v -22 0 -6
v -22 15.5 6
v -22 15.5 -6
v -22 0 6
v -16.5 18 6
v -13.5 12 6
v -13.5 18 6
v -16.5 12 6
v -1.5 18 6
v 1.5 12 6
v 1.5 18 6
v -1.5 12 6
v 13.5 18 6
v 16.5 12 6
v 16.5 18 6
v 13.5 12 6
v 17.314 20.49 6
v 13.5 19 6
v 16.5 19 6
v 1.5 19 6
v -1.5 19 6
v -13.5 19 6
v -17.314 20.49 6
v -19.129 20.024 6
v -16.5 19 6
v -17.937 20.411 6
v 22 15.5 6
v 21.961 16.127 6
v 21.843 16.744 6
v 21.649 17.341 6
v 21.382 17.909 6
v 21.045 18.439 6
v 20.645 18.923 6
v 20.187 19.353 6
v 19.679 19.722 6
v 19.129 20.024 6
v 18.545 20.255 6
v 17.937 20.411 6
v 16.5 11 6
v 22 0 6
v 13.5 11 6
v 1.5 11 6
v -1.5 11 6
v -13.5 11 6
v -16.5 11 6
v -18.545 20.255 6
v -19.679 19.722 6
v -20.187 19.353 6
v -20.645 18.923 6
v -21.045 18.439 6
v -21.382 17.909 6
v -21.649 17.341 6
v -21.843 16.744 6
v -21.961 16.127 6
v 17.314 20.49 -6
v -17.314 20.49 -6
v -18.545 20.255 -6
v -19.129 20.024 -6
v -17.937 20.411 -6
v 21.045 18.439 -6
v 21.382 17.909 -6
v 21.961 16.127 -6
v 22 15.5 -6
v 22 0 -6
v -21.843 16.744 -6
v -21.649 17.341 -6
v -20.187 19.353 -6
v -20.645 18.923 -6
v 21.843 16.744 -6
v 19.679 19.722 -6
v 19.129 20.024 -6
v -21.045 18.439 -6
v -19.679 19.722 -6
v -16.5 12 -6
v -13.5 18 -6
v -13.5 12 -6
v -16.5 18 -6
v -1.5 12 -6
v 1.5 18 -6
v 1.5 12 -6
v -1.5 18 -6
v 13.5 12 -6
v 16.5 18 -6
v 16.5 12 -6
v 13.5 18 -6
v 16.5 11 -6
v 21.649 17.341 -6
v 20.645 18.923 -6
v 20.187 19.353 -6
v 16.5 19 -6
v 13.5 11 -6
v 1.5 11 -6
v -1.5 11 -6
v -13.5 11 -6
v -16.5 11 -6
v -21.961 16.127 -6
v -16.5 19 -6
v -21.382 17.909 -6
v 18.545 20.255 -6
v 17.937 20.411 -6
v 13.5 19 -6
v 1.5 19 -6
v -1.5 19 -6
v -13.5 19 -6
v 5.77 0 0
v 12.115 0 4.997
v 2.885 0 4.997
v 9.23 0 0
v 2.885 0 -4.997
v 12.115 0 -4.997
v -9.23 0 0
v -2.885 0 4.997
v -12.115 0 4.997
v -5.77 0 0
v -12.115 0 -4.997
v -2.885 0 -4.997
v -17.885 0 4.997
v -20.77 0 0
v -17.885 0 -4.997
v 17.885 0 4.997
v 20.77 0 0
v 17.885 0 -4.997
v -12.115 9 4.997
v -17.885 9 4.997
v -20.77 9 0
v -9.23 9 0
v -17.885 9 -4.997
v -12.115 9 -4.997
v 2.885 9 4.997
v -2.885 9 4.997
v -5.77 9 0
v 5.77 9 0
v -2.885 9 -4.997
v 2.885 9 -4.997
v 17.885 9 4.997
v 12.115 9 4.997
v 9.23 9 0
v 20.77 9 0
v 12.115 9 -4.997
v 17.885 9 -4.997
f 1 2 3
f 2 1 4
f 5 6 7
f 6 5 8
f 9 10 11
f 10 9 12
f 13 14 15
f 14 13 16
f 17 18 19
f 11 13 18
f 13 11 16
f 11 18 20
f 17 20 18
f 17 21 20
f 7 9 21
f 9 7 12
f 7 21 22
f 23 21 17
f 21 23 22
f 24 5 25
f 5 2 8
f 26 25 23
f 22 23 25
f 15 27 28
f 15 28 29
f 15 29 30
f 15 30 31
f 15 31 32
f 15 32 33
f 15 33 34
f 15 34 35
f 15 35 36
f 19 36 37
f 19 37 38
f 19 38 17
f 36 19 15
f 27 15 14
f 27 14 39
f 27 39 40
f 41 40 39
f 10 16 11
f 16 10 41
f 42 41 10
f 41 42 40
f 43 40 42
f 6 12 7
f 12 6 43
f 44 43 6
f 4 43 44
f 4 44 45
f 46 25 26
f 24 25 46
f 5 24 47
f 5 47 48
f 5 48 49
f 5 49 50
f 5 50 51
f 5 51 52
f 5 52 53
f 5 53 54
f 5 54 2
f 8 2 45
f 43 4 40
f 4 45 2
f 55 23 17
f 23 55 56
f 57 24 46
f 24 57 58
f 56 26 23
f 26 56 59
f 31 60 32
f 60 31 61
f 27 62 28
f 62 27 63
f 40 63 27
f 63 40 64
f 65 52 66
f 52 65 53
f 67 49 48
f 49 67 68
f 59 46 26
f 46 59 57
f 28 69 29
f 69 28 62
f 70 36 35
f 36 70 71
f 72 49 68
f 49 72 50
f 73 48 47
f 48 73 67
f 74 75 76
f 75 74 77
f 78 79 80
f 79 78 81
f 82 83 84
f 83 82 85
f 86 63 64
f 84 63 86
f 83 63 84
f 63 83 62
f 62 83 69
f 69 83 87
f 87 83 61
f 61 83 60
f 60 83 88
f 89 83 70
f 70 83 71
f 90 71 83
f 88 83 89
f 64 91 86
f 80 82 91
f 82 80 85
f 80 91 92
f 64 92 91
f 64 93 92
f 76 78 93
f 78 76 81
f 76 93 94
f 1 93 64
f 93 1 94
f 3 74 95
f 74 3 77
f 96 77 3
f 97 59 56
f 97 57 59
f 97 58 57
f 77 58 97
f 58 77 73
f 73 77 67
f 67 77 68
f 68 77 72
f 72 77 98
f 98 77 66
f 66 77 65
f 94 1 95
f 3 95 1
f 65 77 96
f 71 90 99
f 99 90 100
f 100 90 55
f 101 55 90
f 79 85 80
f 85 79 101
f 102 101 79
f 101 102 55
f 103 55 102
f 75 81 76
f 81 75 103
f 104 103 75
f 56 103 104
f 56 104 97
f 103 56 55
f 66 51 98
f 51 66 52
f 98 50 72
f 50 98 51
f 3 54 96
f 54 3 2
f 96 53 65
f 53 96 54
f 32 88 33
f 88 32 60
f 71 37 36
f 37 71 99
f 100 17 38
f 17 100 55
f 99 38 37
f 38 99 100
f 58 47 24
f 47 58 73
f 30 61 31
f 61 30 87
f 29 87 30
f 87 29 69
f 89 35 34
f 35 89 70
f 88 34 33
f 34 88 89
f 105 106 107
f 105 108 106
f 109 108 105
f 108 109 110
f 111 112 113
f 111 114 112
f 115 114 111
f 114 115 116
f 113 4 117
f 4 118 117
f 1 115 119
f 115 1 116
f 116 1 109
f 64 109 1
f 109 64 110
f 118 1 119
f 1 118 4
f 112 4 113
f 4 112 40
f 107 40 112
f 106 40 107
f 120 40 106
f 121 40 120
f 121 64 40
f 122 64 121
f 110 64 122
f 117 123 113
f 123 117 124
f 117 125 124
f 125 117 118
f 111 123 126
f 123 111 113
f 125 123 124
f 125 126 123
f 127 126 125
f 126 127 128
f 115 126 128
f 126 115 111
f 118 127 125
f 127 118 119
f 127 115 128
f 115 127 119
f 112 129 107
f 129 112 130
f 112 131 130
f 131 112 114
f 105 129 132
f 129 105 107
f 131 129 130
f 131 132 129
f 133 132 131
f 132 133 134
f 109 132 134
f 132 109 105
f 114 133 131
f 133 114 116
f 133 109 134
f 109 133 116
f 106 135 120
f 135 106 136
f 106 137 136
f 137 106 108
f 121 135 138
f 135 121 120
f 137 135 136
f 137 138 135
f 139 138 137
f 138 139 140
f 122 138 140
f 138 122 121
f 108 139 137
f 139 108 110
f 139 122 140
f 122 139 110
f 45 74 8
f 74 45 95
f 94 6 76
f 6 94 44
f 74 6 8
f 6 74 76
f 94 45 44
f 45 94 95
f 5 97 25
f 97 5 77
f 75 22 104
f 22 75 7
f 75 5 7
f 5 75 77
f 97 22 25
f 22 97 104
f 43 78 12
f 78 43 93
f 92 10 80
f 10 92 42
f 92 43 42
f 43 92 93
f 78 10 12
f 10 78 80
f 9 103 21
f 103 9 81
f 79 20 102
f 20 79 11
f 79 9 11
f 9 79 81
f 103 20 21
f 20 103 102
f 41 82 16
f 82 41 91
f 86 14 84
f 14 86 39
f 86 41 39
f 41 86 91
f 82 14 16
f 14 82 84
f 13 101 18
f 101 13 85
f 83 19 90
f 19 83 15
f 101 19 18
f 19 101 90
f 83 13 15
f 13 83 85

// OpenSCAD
$fn = 50;


difference() {
	union() {
		translate(v = [0, 13.5000000000, -6.0000000000]) {
			hull() {
				translate(v = [-17.0000000000, 2.0000000000, 0]) {
					cylinder(h = 12, r = 5);
				}
				translate(v = [17.0000000000, 2.0000000000, 0]) {
					cylinder(h = 12, r = 5);
				}
				translate(v = [-17.0000000000, -2.0000000000, 0]) {
					cylinder(h = 12, r = 5);
				}
				translate(v = [17.0000000000, -2.0000000000, 0]) {
					cylinder(h = 12, r = 5);
				}
			}
		}
		translate(v = [0, 13.5000000000, -6.0000000000]) {
			hull() {
				translate(v = [-17.0000000000, 2.0000000000, 0]) {
					cylinder(h = 12, r = 5);
				}
				translate(v = [17.0000000000, 2.0000000000, 0]) {
					cylinder(h = 12, r = 5);
				}
				translate(v = [-17.0000000000, -2.0000000000, 0]) {
					cylinder(h = 12, r = 5);
				}
				translate(v = [17.0000000000, -2.0000000000, 0]) {
					cylinder(h = 12, r = 5);
				}
			}
		}
		translate(v = [-22.0000000000, 0, -6.0000000000]) {
			cube(size = [44, 13.5000000000, 12]);
		}
	}
	union() {
		translate(v = [-15.0000000000, 9, 0]) {
			rotate(a = [0, 0, 0]) {
				difference() {
					union() {
						rotate(a = [90, 0, 0]) {
							linear_extrude(height = 13.5000000000) {
								polygon(points = [[5.7700000000, 0.0000000000], [2.8850000000, 4.9969665798], [-2.8850000000, 4.9969665798], [-5.7700000000, 0.0000000000], [-2.8850000000, -4.9969665798], [2.8850000000, -4.9969665798]]);
							}
						}
					}
					union();
				}
			}
		}
		translate(v = [0.0000000000, 9, 0]) {
			rotate(a = [0, 0, 0]) {
				difference() {
					union() {
						rotate(a = [90, 0, 0]) {
							linear_extrude(height = 13.5000000000) {
								polygon(points = [[5.7700000000, 0.0000000000], [2.8850000000, 4.9969665798], [-2.8850000000, 4.9969665798], [-5.7700000000, 0.0000000000], [-2.8850000000, -4.9969665798], [2.8850000000, -4.9969665798]]);
							}
						}
					}
					union();
				}
			}
		}
		translate(v = [15.0000000000, 9, 0]) {
			rotate(a = [0, 0, 0]) {
				difference() {
					union() {
						rotate(a = [90, 0, 0]) {
							linear_extrude(height = 13.5000000000) {
								polygon(points = [[5.7700000000, 0.0000000000], [2.8850000000, 4.9969665798], [-2.8850000000, 4.9969665798], [-5.7700000000, 0.0000000000], [-2.8850000000, -4.9969665798], [2.8850000000, -4.9969665798]]);
							}
						}
					}
					union();
				}
			}
		}
		translate(v = [-16.5000000000, 11.0000000000, -50]) {
			cube(size = [3, 1, 100]);
		}
		translate(v = [-16.5000000000, 18.0000000000, -50]) {
			cube(size = [3, 1, 100]);
		}
		translate(v = [-15.0000000000, 8, 0]) {
			rotate(a = [90, 0, 0]) {
				cylinder(h = 8, r = 3.0000000000);
			}
		}
		translate(v = [-1.5000000000, 11.0000000000, -50]) {
			cube(size = [3, 1, 100]);
		}
		translate(v = [-1.5000000000, 18.0000000000, -50]) {
			cube(size = [3, 1, 100]);
		}
		translate(v = [0.0000000000, 8, 0]) {
			rotate(a = [90, 0, 0]) {
				cylinder(h = 8, r = 3.0000000000);
			}
		}
		translate(v = [13.5000000000, 11.0000000000, -50]) {
			cube(size = [3, 1, 100]);
		}
		translate(v = [13.5000000000, 18.0000000000, -50]) {
			cube(size = [3, 1, 100]);
		}
		translate(v = [15.0000000000, 8, 0]) {
			rotate(a = [90, 0, 0]) {
				cylinder(h = 8, r = 3.0000000000);
			}
		}
	}
}
